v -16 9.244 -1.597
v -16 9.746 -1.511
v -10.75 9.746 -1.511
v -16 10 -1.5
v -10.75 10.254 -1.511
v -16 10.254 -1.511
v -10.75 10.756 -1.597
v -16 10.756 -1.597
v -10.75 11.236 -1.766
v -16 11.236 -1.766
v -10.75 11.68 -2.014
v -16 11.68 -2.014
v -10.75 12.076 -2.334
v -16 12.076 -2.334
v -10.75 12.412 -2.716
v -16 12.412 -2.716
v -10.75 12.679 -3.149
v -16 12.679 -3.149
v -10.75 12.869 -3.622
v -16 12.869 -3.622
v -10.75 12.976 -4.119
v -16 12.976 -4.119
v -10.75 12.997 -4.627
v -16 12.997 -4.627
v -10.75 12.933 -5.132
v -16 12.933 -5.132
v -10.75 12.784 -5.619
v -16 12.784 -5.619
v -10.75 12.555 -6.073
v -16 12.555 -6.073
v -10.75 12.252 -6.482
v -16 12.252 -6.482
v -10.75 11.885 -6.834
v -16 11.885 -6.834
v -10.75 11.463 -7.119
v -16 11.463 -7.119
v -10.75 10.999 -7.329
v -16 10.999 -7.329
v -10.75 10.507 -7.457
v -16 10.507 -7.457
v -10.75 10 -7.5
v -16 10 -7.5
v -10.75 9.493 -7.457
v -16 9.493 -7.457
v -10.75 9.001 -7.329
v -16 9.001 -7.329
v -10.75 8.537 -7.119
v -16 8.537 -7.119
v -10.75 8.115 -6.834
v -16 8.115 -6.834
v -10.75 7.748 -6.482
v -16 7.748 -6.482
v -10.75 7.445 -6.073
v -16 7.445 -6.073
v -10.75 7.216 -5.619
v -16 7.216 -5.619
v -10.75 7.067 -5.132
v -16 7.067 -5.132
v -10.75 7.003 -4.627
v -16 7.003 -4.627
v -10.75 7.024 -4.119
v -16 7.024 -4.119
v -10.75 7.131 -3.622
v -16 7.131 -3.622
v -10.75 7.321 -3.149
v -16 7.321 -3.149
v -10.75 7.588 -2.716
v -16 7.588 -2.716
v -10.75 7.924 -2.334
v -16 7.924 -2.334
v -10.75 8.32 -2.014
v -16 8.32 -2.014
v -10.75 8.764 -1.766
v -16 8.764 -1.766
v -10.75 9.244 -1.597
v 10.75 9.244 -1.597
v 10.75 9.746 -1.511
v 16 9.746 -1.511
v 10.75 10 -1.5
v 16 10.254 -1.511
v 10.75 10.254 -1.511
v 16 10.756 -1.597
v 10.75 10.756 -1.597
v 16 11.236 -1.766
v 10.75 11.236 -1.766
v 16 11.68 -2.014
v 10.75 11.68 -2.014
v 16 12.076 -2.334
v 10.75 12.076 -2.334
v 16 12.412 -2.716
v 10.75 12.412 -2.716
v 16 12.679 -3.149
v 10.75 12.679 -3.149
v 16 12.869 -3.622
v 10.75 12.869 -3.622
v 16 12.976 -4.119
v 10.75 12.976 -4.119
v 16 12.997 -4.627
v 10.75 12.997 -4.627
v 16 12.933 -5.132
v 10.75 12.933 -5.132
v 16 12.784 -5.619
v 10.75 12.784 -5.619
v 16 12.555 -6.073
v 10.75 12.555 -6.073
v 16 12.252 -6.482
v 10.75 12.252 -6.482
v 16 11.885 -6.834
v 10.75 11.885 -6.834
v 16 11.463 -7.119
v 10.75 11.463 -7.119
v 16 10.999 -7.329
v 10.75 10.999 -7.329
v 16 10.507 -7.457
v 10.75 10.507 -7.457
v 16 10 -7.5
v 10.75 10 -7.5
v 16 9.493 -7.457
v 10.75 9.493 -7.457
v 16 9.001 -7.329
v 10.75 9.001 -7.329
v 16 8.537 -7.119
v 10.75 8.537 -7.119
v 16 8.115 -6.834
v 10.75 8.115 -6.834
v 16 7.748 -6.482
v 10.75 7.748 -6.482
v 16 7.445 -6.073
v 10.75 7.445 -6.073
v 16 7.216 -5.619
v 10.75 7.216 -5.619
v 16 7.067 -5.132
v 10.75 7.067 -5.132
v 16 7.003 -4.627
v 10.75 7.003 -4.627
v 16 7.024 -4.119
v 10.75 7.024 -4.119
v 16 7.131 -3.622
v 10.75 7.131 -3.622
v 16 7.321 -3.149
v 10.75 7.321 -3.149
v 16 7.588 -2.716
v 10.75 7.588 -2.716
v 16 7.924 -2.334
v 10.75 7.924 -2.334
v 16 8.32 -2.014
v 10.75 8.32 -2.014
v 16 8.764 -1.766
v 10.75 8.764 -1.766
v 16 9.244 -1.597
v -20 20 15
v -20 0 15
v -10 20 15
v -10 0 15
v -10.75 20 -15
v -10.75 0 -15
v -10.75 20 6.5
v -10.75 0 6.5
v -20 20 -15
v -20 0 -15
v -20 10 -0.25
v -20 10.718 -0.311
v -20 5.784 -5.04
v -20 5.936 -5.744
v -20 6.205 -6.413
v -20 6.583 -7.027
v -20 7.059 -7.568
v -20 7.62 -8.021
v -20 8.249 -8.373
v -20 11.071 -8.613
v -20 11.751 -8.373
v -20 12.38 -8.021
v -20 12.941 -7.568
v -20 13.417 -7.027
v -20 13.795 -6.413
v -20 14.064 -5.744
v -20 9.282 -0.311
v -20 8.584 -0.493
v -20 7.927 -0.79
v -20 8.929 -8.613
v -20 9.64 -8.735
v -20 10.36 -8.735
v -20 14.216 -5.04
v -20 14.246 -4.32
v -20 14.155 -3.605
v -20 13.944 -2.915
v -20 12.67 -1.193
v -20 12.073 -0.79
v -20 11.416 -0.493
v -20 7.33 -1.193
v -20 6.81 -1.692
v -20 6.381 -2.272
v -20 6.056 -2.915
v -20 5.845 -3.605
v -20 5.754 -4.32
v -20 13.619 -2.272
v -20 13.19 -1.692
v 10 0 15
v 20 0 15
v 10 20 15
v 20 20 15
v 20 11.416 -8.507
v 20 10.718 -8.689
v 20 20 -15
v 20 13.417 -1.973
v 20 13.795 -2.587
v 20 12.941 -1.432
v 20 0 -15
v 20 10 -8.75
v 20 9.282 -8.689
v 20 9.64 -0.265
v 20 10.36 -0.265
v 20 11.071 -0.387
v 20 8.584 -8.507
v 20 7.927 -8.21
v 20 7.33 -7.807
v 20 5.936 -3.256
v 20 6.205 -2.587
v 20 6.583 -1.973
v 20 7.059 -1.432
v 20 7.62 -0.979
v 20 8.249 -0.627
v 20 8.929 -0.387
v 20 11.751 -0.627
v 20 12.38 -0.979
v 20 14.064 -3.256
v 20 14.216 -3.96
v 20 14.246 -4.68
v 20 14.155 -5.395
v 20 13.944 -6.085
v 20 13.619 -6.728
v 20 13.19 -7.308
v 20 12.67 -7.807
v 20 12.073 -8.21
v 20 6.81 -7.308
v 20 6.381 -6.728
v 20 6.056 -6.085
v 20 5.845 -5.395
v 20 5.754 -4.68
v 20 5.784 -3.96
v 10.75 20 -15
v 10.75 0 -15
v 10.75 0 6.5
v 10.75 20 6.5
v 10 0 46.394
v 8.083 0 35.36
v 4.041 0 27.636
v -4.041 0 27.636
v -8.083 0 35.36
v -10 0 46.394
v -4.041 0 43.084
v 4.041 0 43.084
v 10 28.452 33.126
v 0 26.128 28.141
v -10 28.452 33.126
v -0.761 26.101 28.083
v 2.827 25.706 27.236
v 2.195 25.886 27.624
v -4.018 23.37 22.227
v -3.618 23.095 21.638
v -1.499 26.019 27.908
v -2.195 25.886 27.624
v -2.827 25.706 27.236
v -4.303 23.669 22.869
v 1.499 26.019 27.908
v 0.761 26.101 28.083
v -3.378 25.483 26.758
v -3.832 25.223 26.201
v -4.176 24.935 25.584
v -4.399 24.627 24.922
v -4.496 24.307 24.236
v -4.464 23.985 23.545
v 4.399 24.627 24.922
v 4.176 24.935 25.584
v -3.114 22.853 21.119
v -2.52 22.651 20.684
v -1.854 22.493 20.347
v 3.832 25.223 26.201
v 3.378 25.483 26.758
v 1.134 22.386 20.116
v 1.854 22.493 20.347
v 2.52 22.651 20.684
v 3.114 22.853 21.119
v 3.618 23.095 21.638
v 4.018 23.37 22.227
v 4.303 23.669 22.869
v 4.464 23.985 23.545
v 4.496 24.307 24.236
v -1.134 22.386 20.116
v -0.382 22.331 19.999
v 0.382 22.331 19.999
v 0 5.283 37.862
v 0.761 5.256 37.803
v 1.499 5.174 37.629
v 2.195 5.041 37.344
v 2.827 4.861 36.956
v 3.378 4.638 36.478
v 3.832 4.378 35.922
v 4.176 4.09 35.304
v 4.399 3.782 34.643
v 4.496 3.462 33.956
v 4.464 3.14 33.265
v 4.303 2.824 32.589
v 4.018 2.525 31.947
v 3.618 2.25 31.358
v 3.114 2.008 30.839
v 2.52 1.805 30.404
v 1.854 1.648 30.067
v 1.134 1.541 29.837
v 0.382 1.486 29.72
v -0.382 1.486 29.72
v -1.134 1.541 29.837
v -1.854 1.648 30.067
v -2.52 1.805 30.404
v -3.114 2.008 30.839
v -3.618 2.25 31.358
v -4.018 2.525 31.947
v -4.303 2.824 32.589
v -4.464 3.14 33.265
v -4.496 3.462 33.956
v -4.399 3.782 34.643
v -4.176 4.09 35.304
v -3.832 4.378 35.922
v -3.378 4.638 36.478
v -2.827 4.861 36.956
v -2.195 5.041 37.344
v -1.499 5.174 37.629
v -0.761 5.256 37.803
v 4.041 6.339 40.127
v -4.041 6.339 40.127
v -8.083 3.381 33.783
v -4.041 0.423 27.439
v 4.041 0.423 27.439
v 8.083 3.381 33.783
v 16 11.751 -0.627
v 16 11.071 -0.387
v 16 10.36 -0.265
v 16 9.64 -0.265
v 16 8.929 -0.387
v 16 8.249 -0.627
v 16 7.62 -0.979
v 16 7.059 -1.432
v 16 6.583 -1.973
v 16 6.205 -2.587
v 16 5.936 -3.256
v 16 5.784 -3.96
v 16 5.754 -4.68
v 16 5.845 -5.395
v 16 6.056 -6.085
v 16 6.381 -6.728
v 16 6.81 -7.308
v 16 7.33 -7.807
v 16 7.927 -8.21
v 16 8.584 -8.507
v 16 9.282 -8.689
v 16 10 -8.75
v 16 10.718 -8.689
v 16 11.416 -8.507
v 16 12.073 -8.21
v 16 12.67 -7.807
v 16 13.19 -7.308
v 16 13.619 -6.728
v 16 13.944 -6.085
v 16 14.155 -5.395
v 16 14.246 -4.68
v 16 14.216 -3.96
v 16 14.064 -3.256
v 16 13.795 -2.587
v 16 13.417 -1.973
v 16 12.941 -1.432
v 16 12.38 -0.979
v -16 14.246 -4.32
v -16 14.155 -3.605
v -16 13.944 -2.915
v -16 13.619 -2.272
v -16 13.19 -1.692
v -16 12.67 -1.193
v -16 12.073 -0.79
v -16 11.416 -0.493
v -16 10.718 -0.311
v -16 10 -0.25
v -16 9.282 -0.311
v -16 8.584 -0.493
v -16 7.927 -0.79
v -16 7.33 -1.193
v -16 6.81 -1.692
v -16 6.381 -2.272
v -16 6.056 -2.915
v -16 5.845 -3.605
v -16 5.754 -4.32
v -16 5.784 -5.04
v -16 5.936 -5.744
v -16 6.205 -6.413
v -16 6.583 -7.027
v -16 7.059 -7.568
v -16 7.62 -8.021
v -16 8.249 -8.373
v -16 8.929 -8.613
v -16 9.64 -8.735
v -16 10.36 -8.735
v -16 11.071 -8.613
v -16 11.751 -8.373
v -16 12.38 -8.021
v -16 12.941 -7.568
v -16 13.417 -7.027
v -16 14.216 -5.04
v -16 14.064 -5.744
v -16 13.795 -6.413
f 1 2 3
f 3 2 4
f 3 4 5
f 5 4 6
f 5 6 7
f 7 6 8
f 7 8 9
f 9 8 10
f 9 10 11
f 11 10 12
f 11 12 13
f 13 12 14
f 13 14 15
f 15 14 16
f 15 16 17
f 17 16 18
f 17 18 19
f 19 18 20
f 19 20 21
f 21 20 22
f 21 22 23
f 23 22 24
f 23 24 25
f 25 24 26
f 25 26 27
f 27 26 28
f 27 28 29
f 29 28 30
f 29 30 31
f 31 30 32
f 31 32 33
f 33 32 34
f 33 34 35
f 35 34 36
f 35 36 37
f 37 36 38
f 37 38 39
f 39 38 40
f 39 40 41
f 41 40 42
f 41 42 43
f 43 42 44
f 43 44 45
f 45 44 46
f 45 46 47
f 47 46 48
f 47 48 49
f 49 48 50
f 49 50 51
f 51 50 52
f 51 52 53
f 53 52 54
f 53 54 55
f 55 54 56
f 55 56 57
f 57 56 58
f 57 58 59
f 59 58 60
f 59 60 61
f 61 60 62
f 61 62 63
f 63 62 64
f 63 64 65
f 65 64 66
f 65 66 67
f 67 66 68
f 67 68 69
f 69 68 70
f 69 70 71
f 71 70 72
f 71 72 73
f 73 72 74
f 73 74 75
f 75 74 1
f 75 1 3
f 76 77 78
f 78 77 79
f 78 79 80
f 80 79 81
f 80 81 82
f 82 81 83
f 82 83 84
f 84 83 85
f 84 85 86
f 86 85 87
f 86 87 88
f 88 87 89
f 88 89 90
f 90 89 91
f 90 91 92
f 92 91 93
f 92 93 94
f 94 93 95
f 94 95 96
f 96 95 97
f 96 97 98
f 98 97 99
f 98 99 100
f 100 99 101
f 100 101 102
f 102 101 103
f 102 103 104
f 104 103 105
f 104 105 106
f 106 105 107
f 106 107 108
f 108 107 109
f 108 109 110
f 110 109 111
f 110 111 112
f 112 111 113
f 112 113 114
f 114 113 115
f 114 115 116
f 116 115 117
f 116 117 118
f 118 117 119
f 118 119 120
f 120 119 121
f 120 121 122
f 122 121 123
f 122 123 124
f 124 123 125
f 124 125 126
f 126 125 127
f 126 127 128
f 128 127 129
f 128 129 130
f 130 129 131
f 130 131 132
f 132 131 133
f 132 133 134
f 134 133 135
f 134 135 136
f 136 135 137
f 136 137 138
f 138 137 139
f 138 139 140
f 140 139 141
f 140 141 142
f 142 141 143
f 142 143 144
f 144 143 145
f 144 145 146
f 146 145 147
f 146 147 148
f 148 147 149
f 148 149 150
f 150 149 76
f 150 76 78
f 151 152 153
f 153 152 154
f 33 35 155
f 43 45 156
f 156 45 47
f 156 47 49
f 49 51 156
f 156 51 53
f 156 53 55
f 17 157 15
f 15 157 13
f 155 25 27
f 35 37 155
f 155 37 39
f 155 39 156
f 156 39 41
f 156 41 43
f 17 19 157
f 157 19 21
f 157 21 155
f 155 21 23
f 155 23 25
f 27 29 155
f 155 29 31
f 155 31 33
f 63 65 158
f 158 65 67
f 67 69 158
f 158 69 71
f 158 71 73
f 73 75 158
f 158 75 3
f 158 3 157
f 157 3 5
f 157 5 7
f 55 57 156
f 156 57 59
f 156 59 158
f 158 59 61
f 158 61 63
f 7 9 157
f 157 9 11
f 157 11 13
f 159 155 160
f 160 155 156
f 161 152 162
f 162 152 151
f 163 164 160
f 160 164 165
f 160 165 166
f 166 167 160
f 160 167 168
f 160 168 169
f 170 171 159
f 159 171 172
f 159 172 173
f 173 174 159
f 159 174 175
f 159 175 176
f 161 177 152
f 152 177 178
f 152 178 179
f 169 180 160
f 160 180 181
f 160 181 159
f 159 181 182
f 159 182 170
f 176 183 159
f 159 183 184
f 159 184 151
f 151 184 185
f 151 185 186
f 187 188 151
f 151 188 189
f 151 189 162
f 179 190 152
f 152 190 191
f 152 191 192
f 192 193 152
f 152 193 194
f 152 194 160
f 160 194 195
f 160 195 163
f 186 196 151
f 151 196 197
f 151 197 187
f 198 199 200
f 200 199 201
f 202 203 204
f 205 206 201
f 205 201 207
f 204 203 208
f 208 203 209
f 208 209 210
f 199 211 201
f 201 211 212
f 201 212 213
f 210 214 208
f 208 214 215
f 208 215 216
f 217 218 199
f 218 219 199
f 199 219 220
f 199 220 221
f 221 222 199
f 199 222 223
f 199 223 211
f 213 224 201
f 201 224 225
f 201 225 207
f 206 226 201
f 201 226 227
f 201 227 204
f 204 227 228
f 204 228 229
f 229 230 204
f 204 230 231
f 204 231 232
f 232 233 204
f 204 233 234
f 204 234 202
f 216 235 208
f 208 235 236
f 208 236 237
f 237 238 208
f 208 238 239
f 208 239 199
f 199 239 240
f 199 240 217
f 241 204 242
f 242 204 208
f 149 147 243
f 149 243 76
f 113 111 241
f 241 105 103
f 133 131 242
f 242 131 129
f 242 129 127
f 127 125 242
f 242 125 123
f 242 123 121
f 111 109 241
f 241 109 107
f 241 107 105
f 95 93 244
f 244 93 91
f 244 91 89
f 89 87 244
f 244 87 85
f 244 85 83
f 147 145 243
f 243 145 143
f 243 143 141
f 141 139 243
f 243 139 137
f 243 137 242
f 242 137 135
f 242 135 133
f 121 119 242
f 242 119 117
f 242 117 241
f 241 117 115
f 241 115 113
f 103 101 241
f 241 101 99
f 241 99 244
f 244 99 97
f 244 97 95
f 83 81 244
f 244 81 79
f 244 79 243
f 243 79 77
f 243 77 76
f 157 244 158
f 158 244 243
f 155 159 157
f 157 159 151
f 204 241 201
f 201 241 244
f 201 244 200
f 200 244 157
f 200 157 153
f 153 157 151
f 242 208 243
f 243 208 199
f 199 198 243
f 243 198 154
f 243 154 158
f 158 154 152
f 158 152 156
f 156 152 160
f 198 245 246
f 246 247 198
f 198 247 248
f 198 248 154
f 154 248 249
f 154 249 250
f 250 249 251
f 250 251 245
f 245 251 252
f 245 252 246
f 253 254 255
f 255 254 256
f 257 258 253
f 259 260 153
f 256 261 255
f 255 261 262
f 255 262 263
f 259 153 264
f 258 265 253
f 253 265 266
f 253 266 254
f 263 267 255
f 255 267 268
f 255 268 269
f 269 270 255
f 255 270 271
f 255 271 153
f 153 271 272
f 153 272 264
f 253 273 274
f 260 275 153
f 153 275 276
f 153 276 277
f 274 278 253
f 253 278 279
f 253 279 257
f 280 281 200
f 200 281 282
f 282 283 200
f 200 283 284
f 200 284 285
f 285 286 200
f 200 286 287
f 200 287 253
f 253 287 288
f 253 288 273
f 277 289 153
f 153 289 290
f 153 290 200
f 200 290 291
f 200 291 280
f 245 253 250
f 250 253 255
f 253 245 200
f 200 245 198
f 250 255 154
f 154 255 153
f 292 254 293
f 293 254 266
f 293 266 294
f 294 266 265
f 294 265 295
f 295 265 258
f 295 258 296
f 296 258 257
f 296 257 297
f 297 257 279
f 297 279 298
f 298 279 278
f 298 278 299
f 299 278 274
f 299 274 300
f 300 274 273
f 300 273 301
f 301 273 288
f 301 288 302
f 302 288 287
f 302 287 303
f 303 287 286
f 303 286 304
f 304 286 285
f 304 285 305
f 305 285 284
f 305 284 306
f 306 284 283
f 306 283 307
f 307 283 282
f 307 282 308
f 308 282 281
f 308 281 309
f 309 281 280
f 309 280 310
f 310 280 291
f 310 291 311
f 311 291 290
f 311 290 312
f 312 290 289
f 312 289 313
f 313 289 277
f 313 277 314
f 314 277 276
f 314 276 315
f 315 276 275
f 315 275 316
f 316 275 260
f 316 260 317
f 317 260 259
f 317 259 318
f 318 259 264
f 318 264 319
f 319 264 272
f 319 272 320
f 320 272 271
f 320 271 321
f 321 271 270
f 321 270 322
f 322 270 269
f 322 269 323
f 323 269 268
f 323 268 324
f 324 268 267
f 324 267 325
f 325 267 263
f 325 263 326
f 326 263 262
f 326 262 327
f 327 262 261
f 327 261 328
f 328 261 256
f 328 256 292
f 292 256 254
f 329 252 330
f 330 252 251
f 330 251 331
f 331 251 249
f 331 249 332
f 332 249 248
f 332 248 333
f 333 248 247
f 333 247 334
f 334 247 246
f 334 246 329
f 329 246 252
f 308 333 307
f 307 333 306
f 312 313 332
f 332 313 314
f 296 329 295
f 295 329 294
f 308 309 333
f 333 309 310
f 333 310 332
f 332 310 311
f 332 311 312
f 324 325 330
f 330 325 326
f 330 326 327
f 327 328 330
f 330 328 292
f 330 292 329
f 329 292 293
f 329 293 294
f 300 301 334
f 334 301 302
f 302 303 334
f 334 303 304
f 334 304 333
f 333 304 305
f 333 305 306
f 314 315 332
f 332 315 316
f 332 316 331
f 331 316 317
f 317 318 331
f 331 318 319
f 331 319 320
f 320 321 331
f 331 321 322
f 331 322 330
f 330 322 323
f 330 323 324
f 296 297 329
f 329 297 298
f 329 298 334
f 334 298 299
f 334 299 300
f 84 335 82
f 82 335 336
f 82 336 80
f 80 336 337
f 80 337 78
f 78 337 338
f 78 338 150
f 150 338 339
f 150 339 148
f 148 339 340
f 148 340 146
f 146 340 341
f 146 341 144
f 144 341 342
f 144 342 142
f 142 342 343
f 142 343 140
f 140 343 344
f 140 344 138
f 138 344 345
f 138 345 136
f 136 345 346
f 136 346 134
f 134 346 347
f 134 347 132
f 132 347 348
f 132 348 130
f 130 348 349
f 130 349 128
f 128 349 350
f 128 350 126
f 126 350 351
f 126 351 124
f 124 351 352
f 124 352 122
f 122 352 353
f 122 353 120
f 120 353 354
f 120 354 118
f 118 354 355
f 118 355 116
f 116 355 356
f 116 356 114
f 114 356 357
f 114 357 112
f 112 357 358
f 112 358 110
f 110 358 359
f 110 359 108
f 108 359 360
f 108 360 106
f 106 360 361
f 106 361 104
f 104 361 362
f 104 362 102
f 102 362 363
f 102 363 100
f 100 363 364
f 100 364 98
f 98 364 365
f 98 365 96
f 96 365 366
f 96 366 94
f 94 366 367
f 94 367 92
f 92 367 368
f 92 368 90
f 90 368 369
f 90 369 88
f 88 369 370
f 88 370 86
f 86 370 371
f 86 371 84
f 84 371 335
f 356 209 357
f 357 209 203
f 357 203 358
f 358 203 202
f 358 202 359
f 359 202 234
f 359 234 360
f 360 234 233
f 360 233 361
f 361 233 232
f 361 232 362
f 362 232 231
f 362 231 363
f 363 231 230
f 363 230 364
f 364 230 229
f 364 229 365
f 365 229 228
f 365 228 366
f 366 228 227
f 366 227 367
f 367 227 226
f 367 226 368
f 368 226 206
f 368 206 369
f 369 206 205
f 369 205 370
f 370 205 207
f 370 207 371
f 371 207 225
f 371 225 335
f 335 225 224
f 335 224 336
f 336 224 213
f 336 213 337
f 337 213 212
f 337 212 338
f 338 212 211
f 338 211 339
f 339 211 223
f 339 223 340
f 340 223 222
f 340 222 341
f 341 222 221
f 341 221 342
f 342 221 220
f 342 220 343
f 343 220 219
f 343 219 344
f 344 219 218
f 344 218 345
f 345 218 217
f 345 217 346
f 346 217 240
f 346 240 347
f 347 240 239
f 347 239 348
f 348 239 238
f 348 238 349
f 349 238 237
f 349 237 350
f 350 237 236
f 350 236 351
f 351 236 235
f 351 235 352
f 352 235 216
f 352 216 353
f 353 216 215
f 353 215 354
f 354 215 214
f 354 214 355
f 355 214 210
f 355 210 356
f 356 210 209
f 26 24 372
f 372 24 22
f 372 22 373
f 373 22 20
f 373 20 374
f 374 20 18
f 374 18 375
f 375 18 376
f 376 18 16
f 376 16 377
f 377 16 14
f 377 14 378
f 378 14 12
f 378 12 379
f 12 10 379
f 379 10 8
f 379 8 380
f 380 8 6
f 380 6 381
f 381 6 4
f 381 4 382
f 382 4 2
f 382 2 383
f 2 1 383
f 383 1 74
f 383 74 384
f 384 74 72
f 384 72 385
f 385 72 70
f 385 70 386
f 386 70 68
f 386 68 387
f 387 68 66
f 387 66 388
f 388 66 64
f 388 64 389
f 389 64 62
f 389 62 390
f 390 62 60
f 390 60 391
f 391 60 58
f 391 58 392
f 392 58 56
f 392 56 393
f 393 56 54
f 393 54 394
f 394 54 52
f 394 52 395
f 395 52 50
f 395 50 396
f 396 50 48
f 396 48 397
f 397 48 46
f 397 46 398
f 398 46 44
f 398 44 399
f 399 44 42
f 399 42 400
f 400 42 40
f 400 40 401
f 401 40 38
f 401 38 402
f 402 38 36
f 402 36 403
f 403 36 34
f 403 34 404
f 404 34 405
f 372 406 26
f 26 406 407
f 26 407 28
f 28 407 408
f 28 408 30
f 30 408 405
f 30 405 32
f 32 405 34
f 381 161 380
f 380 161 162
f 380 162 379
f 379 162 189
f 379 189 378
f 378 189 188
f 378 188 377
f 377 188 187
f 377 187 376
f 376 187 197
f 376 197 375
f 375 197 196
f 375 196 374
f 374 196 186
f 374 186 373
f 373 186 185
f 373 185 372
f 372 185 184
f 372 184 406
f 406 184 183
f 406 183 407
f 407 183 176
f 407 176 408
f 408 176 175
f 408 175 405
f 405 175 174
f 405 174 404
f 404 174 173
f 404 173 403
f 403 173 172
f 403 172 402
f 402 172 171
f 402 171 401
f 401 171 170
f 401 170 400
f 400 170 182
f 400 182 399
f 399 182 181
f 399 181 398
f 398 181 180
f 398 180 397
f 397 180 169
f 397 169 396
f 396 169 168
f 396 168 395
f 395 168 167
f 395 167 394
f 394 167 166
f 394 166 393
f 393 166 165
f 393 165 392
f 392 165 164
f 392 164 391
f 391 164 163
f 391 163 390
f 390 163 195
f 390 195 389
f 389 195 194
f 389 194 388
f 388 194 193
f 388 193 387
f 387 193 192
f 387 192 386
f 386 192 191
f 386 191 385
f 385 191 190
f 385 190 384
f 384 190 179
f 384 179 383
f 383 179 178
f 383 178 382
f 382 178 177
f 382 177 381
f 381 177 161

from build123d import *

# Parameters (mm, degrees)
BOSS_EXTRUDE1_DEPTH = 20
BOSS_EXTRUDE3_DEPTH = 10
SKETCH3_R           = 4.5
CUT_EXTRUDE1_DEPTH  = 32.393711542
CUT_EXTRUDE2_DEPTH  = 20
SKETCH5_R           = 3
CUT_EXTRUDE3_DEPTH  = 41
SKETCH6_R           = 4.25
CUT_EXTRUDE4_DEPTH  = 4
SKETCH7_R           = 4.25
CUT_EXTRUDE5_DEPTH  = 4


with BuildPart() as part:
    # Sketch1 → Boss-Extrude1 (new body)
    with BuildSketch(Plane(origin=(0, 0, 0), x_dir=(1, 0, 0), z_dir=(0, 1, 0))):
        Polygon((-10.75, 15), (-10.75, -6.5), (10.75, -6.5), (10.75, 15), (20, 15), (20, -15), (-20, -15), (-20, 15), align=None)
    extrude(amount=BOSS_EXTRUDE1_DEPTH)

    # Sketch2 → Boss-Extrude3 (add, symmetric)
    with BuildSketch(Plane(origin=(0, 0, 0), x_dir=(0, 0, -1), z_dir=(1, 0, 0))):
        Polygon((-15, 20), (-15, 0), (-46.393711542, 0), (-33.126155741, 28.452365235), align=None)
    extrude(amount=BOSS_EXTRUDE3_DEPTH, both=True)

    # Sketch3 → Cut-Extrude1 (cut, through all)
    with BuildSketch(Plane(origin=(0, 10.682542773, -4.981351504), x_dir=(1, 0, 0), z_dir=(0, 0.906307787, -0.422618262))):
        with Locations((0, -32.04698204)):
            Circle(SKETCH3_R)
    extrude(amount=-CUT_EXTRUDE1_DEPTH, mode=Mode.SUBTRACT)

    # Sketch4 → Cut-Extrude2 (cut)
    with BuildSketch(Plane(origin=(0, -10.162536328, 4.738868516), x_dir=(1, 0, 0), z_dir=(0, 0.906307787, -0.422618262))):
        Polygon((4.041451884, -39.04698204), (8.082903769, -32.04698204), (4.041451884, -25.04698204), (-4.041451884, -25.04698204), (-8.082903769, -32.04698204), (-4.041451884, -39.04698204), align=None)
    extrude(amount=-CUT_EXTRUDE2_DEPTH, mode=Mode.SUBTRACT)

    # Sketch5 → Cut-Extrude3 (cut, through all)
    with BuildSketch(Plane(origin=(20, 0, 0), x_dir=(0, 0, -1), z_dir=(1, 0, 0))):
        with Locations((4.5, 10)):
            Circle(SKETCH5_R)
    extrude(amount=-CUT_EXTRUDE3_DEPTH, mode=Mode.SUBTRACT)

    # Sketch6 → Cut-Extrude4 (cut)
    with BuildSketch(Plane(origin=(20, 0, 0), x_dir=(0, 0, -1), z_dir=(1, 0, 0))):
        with Locations((4.5, 10)):
            Circle(SKETCH6_R)
    extrude(amount=-CUT_EXTRUDE4_DEPTH, mode=Mode.SUBTRACT)

    # Sketch7 → Cut-Extrude5 (cut)
    with BuildSketch(Plane.ZY.offset(20)):
        with Locations((-4.5, 10)):
            Circle(SKETCH7_R)
    extrude(amount=-CUT_EXTRUDE5_DEPTH, mode=Mode.SUBTRACT)


solid = part.part
